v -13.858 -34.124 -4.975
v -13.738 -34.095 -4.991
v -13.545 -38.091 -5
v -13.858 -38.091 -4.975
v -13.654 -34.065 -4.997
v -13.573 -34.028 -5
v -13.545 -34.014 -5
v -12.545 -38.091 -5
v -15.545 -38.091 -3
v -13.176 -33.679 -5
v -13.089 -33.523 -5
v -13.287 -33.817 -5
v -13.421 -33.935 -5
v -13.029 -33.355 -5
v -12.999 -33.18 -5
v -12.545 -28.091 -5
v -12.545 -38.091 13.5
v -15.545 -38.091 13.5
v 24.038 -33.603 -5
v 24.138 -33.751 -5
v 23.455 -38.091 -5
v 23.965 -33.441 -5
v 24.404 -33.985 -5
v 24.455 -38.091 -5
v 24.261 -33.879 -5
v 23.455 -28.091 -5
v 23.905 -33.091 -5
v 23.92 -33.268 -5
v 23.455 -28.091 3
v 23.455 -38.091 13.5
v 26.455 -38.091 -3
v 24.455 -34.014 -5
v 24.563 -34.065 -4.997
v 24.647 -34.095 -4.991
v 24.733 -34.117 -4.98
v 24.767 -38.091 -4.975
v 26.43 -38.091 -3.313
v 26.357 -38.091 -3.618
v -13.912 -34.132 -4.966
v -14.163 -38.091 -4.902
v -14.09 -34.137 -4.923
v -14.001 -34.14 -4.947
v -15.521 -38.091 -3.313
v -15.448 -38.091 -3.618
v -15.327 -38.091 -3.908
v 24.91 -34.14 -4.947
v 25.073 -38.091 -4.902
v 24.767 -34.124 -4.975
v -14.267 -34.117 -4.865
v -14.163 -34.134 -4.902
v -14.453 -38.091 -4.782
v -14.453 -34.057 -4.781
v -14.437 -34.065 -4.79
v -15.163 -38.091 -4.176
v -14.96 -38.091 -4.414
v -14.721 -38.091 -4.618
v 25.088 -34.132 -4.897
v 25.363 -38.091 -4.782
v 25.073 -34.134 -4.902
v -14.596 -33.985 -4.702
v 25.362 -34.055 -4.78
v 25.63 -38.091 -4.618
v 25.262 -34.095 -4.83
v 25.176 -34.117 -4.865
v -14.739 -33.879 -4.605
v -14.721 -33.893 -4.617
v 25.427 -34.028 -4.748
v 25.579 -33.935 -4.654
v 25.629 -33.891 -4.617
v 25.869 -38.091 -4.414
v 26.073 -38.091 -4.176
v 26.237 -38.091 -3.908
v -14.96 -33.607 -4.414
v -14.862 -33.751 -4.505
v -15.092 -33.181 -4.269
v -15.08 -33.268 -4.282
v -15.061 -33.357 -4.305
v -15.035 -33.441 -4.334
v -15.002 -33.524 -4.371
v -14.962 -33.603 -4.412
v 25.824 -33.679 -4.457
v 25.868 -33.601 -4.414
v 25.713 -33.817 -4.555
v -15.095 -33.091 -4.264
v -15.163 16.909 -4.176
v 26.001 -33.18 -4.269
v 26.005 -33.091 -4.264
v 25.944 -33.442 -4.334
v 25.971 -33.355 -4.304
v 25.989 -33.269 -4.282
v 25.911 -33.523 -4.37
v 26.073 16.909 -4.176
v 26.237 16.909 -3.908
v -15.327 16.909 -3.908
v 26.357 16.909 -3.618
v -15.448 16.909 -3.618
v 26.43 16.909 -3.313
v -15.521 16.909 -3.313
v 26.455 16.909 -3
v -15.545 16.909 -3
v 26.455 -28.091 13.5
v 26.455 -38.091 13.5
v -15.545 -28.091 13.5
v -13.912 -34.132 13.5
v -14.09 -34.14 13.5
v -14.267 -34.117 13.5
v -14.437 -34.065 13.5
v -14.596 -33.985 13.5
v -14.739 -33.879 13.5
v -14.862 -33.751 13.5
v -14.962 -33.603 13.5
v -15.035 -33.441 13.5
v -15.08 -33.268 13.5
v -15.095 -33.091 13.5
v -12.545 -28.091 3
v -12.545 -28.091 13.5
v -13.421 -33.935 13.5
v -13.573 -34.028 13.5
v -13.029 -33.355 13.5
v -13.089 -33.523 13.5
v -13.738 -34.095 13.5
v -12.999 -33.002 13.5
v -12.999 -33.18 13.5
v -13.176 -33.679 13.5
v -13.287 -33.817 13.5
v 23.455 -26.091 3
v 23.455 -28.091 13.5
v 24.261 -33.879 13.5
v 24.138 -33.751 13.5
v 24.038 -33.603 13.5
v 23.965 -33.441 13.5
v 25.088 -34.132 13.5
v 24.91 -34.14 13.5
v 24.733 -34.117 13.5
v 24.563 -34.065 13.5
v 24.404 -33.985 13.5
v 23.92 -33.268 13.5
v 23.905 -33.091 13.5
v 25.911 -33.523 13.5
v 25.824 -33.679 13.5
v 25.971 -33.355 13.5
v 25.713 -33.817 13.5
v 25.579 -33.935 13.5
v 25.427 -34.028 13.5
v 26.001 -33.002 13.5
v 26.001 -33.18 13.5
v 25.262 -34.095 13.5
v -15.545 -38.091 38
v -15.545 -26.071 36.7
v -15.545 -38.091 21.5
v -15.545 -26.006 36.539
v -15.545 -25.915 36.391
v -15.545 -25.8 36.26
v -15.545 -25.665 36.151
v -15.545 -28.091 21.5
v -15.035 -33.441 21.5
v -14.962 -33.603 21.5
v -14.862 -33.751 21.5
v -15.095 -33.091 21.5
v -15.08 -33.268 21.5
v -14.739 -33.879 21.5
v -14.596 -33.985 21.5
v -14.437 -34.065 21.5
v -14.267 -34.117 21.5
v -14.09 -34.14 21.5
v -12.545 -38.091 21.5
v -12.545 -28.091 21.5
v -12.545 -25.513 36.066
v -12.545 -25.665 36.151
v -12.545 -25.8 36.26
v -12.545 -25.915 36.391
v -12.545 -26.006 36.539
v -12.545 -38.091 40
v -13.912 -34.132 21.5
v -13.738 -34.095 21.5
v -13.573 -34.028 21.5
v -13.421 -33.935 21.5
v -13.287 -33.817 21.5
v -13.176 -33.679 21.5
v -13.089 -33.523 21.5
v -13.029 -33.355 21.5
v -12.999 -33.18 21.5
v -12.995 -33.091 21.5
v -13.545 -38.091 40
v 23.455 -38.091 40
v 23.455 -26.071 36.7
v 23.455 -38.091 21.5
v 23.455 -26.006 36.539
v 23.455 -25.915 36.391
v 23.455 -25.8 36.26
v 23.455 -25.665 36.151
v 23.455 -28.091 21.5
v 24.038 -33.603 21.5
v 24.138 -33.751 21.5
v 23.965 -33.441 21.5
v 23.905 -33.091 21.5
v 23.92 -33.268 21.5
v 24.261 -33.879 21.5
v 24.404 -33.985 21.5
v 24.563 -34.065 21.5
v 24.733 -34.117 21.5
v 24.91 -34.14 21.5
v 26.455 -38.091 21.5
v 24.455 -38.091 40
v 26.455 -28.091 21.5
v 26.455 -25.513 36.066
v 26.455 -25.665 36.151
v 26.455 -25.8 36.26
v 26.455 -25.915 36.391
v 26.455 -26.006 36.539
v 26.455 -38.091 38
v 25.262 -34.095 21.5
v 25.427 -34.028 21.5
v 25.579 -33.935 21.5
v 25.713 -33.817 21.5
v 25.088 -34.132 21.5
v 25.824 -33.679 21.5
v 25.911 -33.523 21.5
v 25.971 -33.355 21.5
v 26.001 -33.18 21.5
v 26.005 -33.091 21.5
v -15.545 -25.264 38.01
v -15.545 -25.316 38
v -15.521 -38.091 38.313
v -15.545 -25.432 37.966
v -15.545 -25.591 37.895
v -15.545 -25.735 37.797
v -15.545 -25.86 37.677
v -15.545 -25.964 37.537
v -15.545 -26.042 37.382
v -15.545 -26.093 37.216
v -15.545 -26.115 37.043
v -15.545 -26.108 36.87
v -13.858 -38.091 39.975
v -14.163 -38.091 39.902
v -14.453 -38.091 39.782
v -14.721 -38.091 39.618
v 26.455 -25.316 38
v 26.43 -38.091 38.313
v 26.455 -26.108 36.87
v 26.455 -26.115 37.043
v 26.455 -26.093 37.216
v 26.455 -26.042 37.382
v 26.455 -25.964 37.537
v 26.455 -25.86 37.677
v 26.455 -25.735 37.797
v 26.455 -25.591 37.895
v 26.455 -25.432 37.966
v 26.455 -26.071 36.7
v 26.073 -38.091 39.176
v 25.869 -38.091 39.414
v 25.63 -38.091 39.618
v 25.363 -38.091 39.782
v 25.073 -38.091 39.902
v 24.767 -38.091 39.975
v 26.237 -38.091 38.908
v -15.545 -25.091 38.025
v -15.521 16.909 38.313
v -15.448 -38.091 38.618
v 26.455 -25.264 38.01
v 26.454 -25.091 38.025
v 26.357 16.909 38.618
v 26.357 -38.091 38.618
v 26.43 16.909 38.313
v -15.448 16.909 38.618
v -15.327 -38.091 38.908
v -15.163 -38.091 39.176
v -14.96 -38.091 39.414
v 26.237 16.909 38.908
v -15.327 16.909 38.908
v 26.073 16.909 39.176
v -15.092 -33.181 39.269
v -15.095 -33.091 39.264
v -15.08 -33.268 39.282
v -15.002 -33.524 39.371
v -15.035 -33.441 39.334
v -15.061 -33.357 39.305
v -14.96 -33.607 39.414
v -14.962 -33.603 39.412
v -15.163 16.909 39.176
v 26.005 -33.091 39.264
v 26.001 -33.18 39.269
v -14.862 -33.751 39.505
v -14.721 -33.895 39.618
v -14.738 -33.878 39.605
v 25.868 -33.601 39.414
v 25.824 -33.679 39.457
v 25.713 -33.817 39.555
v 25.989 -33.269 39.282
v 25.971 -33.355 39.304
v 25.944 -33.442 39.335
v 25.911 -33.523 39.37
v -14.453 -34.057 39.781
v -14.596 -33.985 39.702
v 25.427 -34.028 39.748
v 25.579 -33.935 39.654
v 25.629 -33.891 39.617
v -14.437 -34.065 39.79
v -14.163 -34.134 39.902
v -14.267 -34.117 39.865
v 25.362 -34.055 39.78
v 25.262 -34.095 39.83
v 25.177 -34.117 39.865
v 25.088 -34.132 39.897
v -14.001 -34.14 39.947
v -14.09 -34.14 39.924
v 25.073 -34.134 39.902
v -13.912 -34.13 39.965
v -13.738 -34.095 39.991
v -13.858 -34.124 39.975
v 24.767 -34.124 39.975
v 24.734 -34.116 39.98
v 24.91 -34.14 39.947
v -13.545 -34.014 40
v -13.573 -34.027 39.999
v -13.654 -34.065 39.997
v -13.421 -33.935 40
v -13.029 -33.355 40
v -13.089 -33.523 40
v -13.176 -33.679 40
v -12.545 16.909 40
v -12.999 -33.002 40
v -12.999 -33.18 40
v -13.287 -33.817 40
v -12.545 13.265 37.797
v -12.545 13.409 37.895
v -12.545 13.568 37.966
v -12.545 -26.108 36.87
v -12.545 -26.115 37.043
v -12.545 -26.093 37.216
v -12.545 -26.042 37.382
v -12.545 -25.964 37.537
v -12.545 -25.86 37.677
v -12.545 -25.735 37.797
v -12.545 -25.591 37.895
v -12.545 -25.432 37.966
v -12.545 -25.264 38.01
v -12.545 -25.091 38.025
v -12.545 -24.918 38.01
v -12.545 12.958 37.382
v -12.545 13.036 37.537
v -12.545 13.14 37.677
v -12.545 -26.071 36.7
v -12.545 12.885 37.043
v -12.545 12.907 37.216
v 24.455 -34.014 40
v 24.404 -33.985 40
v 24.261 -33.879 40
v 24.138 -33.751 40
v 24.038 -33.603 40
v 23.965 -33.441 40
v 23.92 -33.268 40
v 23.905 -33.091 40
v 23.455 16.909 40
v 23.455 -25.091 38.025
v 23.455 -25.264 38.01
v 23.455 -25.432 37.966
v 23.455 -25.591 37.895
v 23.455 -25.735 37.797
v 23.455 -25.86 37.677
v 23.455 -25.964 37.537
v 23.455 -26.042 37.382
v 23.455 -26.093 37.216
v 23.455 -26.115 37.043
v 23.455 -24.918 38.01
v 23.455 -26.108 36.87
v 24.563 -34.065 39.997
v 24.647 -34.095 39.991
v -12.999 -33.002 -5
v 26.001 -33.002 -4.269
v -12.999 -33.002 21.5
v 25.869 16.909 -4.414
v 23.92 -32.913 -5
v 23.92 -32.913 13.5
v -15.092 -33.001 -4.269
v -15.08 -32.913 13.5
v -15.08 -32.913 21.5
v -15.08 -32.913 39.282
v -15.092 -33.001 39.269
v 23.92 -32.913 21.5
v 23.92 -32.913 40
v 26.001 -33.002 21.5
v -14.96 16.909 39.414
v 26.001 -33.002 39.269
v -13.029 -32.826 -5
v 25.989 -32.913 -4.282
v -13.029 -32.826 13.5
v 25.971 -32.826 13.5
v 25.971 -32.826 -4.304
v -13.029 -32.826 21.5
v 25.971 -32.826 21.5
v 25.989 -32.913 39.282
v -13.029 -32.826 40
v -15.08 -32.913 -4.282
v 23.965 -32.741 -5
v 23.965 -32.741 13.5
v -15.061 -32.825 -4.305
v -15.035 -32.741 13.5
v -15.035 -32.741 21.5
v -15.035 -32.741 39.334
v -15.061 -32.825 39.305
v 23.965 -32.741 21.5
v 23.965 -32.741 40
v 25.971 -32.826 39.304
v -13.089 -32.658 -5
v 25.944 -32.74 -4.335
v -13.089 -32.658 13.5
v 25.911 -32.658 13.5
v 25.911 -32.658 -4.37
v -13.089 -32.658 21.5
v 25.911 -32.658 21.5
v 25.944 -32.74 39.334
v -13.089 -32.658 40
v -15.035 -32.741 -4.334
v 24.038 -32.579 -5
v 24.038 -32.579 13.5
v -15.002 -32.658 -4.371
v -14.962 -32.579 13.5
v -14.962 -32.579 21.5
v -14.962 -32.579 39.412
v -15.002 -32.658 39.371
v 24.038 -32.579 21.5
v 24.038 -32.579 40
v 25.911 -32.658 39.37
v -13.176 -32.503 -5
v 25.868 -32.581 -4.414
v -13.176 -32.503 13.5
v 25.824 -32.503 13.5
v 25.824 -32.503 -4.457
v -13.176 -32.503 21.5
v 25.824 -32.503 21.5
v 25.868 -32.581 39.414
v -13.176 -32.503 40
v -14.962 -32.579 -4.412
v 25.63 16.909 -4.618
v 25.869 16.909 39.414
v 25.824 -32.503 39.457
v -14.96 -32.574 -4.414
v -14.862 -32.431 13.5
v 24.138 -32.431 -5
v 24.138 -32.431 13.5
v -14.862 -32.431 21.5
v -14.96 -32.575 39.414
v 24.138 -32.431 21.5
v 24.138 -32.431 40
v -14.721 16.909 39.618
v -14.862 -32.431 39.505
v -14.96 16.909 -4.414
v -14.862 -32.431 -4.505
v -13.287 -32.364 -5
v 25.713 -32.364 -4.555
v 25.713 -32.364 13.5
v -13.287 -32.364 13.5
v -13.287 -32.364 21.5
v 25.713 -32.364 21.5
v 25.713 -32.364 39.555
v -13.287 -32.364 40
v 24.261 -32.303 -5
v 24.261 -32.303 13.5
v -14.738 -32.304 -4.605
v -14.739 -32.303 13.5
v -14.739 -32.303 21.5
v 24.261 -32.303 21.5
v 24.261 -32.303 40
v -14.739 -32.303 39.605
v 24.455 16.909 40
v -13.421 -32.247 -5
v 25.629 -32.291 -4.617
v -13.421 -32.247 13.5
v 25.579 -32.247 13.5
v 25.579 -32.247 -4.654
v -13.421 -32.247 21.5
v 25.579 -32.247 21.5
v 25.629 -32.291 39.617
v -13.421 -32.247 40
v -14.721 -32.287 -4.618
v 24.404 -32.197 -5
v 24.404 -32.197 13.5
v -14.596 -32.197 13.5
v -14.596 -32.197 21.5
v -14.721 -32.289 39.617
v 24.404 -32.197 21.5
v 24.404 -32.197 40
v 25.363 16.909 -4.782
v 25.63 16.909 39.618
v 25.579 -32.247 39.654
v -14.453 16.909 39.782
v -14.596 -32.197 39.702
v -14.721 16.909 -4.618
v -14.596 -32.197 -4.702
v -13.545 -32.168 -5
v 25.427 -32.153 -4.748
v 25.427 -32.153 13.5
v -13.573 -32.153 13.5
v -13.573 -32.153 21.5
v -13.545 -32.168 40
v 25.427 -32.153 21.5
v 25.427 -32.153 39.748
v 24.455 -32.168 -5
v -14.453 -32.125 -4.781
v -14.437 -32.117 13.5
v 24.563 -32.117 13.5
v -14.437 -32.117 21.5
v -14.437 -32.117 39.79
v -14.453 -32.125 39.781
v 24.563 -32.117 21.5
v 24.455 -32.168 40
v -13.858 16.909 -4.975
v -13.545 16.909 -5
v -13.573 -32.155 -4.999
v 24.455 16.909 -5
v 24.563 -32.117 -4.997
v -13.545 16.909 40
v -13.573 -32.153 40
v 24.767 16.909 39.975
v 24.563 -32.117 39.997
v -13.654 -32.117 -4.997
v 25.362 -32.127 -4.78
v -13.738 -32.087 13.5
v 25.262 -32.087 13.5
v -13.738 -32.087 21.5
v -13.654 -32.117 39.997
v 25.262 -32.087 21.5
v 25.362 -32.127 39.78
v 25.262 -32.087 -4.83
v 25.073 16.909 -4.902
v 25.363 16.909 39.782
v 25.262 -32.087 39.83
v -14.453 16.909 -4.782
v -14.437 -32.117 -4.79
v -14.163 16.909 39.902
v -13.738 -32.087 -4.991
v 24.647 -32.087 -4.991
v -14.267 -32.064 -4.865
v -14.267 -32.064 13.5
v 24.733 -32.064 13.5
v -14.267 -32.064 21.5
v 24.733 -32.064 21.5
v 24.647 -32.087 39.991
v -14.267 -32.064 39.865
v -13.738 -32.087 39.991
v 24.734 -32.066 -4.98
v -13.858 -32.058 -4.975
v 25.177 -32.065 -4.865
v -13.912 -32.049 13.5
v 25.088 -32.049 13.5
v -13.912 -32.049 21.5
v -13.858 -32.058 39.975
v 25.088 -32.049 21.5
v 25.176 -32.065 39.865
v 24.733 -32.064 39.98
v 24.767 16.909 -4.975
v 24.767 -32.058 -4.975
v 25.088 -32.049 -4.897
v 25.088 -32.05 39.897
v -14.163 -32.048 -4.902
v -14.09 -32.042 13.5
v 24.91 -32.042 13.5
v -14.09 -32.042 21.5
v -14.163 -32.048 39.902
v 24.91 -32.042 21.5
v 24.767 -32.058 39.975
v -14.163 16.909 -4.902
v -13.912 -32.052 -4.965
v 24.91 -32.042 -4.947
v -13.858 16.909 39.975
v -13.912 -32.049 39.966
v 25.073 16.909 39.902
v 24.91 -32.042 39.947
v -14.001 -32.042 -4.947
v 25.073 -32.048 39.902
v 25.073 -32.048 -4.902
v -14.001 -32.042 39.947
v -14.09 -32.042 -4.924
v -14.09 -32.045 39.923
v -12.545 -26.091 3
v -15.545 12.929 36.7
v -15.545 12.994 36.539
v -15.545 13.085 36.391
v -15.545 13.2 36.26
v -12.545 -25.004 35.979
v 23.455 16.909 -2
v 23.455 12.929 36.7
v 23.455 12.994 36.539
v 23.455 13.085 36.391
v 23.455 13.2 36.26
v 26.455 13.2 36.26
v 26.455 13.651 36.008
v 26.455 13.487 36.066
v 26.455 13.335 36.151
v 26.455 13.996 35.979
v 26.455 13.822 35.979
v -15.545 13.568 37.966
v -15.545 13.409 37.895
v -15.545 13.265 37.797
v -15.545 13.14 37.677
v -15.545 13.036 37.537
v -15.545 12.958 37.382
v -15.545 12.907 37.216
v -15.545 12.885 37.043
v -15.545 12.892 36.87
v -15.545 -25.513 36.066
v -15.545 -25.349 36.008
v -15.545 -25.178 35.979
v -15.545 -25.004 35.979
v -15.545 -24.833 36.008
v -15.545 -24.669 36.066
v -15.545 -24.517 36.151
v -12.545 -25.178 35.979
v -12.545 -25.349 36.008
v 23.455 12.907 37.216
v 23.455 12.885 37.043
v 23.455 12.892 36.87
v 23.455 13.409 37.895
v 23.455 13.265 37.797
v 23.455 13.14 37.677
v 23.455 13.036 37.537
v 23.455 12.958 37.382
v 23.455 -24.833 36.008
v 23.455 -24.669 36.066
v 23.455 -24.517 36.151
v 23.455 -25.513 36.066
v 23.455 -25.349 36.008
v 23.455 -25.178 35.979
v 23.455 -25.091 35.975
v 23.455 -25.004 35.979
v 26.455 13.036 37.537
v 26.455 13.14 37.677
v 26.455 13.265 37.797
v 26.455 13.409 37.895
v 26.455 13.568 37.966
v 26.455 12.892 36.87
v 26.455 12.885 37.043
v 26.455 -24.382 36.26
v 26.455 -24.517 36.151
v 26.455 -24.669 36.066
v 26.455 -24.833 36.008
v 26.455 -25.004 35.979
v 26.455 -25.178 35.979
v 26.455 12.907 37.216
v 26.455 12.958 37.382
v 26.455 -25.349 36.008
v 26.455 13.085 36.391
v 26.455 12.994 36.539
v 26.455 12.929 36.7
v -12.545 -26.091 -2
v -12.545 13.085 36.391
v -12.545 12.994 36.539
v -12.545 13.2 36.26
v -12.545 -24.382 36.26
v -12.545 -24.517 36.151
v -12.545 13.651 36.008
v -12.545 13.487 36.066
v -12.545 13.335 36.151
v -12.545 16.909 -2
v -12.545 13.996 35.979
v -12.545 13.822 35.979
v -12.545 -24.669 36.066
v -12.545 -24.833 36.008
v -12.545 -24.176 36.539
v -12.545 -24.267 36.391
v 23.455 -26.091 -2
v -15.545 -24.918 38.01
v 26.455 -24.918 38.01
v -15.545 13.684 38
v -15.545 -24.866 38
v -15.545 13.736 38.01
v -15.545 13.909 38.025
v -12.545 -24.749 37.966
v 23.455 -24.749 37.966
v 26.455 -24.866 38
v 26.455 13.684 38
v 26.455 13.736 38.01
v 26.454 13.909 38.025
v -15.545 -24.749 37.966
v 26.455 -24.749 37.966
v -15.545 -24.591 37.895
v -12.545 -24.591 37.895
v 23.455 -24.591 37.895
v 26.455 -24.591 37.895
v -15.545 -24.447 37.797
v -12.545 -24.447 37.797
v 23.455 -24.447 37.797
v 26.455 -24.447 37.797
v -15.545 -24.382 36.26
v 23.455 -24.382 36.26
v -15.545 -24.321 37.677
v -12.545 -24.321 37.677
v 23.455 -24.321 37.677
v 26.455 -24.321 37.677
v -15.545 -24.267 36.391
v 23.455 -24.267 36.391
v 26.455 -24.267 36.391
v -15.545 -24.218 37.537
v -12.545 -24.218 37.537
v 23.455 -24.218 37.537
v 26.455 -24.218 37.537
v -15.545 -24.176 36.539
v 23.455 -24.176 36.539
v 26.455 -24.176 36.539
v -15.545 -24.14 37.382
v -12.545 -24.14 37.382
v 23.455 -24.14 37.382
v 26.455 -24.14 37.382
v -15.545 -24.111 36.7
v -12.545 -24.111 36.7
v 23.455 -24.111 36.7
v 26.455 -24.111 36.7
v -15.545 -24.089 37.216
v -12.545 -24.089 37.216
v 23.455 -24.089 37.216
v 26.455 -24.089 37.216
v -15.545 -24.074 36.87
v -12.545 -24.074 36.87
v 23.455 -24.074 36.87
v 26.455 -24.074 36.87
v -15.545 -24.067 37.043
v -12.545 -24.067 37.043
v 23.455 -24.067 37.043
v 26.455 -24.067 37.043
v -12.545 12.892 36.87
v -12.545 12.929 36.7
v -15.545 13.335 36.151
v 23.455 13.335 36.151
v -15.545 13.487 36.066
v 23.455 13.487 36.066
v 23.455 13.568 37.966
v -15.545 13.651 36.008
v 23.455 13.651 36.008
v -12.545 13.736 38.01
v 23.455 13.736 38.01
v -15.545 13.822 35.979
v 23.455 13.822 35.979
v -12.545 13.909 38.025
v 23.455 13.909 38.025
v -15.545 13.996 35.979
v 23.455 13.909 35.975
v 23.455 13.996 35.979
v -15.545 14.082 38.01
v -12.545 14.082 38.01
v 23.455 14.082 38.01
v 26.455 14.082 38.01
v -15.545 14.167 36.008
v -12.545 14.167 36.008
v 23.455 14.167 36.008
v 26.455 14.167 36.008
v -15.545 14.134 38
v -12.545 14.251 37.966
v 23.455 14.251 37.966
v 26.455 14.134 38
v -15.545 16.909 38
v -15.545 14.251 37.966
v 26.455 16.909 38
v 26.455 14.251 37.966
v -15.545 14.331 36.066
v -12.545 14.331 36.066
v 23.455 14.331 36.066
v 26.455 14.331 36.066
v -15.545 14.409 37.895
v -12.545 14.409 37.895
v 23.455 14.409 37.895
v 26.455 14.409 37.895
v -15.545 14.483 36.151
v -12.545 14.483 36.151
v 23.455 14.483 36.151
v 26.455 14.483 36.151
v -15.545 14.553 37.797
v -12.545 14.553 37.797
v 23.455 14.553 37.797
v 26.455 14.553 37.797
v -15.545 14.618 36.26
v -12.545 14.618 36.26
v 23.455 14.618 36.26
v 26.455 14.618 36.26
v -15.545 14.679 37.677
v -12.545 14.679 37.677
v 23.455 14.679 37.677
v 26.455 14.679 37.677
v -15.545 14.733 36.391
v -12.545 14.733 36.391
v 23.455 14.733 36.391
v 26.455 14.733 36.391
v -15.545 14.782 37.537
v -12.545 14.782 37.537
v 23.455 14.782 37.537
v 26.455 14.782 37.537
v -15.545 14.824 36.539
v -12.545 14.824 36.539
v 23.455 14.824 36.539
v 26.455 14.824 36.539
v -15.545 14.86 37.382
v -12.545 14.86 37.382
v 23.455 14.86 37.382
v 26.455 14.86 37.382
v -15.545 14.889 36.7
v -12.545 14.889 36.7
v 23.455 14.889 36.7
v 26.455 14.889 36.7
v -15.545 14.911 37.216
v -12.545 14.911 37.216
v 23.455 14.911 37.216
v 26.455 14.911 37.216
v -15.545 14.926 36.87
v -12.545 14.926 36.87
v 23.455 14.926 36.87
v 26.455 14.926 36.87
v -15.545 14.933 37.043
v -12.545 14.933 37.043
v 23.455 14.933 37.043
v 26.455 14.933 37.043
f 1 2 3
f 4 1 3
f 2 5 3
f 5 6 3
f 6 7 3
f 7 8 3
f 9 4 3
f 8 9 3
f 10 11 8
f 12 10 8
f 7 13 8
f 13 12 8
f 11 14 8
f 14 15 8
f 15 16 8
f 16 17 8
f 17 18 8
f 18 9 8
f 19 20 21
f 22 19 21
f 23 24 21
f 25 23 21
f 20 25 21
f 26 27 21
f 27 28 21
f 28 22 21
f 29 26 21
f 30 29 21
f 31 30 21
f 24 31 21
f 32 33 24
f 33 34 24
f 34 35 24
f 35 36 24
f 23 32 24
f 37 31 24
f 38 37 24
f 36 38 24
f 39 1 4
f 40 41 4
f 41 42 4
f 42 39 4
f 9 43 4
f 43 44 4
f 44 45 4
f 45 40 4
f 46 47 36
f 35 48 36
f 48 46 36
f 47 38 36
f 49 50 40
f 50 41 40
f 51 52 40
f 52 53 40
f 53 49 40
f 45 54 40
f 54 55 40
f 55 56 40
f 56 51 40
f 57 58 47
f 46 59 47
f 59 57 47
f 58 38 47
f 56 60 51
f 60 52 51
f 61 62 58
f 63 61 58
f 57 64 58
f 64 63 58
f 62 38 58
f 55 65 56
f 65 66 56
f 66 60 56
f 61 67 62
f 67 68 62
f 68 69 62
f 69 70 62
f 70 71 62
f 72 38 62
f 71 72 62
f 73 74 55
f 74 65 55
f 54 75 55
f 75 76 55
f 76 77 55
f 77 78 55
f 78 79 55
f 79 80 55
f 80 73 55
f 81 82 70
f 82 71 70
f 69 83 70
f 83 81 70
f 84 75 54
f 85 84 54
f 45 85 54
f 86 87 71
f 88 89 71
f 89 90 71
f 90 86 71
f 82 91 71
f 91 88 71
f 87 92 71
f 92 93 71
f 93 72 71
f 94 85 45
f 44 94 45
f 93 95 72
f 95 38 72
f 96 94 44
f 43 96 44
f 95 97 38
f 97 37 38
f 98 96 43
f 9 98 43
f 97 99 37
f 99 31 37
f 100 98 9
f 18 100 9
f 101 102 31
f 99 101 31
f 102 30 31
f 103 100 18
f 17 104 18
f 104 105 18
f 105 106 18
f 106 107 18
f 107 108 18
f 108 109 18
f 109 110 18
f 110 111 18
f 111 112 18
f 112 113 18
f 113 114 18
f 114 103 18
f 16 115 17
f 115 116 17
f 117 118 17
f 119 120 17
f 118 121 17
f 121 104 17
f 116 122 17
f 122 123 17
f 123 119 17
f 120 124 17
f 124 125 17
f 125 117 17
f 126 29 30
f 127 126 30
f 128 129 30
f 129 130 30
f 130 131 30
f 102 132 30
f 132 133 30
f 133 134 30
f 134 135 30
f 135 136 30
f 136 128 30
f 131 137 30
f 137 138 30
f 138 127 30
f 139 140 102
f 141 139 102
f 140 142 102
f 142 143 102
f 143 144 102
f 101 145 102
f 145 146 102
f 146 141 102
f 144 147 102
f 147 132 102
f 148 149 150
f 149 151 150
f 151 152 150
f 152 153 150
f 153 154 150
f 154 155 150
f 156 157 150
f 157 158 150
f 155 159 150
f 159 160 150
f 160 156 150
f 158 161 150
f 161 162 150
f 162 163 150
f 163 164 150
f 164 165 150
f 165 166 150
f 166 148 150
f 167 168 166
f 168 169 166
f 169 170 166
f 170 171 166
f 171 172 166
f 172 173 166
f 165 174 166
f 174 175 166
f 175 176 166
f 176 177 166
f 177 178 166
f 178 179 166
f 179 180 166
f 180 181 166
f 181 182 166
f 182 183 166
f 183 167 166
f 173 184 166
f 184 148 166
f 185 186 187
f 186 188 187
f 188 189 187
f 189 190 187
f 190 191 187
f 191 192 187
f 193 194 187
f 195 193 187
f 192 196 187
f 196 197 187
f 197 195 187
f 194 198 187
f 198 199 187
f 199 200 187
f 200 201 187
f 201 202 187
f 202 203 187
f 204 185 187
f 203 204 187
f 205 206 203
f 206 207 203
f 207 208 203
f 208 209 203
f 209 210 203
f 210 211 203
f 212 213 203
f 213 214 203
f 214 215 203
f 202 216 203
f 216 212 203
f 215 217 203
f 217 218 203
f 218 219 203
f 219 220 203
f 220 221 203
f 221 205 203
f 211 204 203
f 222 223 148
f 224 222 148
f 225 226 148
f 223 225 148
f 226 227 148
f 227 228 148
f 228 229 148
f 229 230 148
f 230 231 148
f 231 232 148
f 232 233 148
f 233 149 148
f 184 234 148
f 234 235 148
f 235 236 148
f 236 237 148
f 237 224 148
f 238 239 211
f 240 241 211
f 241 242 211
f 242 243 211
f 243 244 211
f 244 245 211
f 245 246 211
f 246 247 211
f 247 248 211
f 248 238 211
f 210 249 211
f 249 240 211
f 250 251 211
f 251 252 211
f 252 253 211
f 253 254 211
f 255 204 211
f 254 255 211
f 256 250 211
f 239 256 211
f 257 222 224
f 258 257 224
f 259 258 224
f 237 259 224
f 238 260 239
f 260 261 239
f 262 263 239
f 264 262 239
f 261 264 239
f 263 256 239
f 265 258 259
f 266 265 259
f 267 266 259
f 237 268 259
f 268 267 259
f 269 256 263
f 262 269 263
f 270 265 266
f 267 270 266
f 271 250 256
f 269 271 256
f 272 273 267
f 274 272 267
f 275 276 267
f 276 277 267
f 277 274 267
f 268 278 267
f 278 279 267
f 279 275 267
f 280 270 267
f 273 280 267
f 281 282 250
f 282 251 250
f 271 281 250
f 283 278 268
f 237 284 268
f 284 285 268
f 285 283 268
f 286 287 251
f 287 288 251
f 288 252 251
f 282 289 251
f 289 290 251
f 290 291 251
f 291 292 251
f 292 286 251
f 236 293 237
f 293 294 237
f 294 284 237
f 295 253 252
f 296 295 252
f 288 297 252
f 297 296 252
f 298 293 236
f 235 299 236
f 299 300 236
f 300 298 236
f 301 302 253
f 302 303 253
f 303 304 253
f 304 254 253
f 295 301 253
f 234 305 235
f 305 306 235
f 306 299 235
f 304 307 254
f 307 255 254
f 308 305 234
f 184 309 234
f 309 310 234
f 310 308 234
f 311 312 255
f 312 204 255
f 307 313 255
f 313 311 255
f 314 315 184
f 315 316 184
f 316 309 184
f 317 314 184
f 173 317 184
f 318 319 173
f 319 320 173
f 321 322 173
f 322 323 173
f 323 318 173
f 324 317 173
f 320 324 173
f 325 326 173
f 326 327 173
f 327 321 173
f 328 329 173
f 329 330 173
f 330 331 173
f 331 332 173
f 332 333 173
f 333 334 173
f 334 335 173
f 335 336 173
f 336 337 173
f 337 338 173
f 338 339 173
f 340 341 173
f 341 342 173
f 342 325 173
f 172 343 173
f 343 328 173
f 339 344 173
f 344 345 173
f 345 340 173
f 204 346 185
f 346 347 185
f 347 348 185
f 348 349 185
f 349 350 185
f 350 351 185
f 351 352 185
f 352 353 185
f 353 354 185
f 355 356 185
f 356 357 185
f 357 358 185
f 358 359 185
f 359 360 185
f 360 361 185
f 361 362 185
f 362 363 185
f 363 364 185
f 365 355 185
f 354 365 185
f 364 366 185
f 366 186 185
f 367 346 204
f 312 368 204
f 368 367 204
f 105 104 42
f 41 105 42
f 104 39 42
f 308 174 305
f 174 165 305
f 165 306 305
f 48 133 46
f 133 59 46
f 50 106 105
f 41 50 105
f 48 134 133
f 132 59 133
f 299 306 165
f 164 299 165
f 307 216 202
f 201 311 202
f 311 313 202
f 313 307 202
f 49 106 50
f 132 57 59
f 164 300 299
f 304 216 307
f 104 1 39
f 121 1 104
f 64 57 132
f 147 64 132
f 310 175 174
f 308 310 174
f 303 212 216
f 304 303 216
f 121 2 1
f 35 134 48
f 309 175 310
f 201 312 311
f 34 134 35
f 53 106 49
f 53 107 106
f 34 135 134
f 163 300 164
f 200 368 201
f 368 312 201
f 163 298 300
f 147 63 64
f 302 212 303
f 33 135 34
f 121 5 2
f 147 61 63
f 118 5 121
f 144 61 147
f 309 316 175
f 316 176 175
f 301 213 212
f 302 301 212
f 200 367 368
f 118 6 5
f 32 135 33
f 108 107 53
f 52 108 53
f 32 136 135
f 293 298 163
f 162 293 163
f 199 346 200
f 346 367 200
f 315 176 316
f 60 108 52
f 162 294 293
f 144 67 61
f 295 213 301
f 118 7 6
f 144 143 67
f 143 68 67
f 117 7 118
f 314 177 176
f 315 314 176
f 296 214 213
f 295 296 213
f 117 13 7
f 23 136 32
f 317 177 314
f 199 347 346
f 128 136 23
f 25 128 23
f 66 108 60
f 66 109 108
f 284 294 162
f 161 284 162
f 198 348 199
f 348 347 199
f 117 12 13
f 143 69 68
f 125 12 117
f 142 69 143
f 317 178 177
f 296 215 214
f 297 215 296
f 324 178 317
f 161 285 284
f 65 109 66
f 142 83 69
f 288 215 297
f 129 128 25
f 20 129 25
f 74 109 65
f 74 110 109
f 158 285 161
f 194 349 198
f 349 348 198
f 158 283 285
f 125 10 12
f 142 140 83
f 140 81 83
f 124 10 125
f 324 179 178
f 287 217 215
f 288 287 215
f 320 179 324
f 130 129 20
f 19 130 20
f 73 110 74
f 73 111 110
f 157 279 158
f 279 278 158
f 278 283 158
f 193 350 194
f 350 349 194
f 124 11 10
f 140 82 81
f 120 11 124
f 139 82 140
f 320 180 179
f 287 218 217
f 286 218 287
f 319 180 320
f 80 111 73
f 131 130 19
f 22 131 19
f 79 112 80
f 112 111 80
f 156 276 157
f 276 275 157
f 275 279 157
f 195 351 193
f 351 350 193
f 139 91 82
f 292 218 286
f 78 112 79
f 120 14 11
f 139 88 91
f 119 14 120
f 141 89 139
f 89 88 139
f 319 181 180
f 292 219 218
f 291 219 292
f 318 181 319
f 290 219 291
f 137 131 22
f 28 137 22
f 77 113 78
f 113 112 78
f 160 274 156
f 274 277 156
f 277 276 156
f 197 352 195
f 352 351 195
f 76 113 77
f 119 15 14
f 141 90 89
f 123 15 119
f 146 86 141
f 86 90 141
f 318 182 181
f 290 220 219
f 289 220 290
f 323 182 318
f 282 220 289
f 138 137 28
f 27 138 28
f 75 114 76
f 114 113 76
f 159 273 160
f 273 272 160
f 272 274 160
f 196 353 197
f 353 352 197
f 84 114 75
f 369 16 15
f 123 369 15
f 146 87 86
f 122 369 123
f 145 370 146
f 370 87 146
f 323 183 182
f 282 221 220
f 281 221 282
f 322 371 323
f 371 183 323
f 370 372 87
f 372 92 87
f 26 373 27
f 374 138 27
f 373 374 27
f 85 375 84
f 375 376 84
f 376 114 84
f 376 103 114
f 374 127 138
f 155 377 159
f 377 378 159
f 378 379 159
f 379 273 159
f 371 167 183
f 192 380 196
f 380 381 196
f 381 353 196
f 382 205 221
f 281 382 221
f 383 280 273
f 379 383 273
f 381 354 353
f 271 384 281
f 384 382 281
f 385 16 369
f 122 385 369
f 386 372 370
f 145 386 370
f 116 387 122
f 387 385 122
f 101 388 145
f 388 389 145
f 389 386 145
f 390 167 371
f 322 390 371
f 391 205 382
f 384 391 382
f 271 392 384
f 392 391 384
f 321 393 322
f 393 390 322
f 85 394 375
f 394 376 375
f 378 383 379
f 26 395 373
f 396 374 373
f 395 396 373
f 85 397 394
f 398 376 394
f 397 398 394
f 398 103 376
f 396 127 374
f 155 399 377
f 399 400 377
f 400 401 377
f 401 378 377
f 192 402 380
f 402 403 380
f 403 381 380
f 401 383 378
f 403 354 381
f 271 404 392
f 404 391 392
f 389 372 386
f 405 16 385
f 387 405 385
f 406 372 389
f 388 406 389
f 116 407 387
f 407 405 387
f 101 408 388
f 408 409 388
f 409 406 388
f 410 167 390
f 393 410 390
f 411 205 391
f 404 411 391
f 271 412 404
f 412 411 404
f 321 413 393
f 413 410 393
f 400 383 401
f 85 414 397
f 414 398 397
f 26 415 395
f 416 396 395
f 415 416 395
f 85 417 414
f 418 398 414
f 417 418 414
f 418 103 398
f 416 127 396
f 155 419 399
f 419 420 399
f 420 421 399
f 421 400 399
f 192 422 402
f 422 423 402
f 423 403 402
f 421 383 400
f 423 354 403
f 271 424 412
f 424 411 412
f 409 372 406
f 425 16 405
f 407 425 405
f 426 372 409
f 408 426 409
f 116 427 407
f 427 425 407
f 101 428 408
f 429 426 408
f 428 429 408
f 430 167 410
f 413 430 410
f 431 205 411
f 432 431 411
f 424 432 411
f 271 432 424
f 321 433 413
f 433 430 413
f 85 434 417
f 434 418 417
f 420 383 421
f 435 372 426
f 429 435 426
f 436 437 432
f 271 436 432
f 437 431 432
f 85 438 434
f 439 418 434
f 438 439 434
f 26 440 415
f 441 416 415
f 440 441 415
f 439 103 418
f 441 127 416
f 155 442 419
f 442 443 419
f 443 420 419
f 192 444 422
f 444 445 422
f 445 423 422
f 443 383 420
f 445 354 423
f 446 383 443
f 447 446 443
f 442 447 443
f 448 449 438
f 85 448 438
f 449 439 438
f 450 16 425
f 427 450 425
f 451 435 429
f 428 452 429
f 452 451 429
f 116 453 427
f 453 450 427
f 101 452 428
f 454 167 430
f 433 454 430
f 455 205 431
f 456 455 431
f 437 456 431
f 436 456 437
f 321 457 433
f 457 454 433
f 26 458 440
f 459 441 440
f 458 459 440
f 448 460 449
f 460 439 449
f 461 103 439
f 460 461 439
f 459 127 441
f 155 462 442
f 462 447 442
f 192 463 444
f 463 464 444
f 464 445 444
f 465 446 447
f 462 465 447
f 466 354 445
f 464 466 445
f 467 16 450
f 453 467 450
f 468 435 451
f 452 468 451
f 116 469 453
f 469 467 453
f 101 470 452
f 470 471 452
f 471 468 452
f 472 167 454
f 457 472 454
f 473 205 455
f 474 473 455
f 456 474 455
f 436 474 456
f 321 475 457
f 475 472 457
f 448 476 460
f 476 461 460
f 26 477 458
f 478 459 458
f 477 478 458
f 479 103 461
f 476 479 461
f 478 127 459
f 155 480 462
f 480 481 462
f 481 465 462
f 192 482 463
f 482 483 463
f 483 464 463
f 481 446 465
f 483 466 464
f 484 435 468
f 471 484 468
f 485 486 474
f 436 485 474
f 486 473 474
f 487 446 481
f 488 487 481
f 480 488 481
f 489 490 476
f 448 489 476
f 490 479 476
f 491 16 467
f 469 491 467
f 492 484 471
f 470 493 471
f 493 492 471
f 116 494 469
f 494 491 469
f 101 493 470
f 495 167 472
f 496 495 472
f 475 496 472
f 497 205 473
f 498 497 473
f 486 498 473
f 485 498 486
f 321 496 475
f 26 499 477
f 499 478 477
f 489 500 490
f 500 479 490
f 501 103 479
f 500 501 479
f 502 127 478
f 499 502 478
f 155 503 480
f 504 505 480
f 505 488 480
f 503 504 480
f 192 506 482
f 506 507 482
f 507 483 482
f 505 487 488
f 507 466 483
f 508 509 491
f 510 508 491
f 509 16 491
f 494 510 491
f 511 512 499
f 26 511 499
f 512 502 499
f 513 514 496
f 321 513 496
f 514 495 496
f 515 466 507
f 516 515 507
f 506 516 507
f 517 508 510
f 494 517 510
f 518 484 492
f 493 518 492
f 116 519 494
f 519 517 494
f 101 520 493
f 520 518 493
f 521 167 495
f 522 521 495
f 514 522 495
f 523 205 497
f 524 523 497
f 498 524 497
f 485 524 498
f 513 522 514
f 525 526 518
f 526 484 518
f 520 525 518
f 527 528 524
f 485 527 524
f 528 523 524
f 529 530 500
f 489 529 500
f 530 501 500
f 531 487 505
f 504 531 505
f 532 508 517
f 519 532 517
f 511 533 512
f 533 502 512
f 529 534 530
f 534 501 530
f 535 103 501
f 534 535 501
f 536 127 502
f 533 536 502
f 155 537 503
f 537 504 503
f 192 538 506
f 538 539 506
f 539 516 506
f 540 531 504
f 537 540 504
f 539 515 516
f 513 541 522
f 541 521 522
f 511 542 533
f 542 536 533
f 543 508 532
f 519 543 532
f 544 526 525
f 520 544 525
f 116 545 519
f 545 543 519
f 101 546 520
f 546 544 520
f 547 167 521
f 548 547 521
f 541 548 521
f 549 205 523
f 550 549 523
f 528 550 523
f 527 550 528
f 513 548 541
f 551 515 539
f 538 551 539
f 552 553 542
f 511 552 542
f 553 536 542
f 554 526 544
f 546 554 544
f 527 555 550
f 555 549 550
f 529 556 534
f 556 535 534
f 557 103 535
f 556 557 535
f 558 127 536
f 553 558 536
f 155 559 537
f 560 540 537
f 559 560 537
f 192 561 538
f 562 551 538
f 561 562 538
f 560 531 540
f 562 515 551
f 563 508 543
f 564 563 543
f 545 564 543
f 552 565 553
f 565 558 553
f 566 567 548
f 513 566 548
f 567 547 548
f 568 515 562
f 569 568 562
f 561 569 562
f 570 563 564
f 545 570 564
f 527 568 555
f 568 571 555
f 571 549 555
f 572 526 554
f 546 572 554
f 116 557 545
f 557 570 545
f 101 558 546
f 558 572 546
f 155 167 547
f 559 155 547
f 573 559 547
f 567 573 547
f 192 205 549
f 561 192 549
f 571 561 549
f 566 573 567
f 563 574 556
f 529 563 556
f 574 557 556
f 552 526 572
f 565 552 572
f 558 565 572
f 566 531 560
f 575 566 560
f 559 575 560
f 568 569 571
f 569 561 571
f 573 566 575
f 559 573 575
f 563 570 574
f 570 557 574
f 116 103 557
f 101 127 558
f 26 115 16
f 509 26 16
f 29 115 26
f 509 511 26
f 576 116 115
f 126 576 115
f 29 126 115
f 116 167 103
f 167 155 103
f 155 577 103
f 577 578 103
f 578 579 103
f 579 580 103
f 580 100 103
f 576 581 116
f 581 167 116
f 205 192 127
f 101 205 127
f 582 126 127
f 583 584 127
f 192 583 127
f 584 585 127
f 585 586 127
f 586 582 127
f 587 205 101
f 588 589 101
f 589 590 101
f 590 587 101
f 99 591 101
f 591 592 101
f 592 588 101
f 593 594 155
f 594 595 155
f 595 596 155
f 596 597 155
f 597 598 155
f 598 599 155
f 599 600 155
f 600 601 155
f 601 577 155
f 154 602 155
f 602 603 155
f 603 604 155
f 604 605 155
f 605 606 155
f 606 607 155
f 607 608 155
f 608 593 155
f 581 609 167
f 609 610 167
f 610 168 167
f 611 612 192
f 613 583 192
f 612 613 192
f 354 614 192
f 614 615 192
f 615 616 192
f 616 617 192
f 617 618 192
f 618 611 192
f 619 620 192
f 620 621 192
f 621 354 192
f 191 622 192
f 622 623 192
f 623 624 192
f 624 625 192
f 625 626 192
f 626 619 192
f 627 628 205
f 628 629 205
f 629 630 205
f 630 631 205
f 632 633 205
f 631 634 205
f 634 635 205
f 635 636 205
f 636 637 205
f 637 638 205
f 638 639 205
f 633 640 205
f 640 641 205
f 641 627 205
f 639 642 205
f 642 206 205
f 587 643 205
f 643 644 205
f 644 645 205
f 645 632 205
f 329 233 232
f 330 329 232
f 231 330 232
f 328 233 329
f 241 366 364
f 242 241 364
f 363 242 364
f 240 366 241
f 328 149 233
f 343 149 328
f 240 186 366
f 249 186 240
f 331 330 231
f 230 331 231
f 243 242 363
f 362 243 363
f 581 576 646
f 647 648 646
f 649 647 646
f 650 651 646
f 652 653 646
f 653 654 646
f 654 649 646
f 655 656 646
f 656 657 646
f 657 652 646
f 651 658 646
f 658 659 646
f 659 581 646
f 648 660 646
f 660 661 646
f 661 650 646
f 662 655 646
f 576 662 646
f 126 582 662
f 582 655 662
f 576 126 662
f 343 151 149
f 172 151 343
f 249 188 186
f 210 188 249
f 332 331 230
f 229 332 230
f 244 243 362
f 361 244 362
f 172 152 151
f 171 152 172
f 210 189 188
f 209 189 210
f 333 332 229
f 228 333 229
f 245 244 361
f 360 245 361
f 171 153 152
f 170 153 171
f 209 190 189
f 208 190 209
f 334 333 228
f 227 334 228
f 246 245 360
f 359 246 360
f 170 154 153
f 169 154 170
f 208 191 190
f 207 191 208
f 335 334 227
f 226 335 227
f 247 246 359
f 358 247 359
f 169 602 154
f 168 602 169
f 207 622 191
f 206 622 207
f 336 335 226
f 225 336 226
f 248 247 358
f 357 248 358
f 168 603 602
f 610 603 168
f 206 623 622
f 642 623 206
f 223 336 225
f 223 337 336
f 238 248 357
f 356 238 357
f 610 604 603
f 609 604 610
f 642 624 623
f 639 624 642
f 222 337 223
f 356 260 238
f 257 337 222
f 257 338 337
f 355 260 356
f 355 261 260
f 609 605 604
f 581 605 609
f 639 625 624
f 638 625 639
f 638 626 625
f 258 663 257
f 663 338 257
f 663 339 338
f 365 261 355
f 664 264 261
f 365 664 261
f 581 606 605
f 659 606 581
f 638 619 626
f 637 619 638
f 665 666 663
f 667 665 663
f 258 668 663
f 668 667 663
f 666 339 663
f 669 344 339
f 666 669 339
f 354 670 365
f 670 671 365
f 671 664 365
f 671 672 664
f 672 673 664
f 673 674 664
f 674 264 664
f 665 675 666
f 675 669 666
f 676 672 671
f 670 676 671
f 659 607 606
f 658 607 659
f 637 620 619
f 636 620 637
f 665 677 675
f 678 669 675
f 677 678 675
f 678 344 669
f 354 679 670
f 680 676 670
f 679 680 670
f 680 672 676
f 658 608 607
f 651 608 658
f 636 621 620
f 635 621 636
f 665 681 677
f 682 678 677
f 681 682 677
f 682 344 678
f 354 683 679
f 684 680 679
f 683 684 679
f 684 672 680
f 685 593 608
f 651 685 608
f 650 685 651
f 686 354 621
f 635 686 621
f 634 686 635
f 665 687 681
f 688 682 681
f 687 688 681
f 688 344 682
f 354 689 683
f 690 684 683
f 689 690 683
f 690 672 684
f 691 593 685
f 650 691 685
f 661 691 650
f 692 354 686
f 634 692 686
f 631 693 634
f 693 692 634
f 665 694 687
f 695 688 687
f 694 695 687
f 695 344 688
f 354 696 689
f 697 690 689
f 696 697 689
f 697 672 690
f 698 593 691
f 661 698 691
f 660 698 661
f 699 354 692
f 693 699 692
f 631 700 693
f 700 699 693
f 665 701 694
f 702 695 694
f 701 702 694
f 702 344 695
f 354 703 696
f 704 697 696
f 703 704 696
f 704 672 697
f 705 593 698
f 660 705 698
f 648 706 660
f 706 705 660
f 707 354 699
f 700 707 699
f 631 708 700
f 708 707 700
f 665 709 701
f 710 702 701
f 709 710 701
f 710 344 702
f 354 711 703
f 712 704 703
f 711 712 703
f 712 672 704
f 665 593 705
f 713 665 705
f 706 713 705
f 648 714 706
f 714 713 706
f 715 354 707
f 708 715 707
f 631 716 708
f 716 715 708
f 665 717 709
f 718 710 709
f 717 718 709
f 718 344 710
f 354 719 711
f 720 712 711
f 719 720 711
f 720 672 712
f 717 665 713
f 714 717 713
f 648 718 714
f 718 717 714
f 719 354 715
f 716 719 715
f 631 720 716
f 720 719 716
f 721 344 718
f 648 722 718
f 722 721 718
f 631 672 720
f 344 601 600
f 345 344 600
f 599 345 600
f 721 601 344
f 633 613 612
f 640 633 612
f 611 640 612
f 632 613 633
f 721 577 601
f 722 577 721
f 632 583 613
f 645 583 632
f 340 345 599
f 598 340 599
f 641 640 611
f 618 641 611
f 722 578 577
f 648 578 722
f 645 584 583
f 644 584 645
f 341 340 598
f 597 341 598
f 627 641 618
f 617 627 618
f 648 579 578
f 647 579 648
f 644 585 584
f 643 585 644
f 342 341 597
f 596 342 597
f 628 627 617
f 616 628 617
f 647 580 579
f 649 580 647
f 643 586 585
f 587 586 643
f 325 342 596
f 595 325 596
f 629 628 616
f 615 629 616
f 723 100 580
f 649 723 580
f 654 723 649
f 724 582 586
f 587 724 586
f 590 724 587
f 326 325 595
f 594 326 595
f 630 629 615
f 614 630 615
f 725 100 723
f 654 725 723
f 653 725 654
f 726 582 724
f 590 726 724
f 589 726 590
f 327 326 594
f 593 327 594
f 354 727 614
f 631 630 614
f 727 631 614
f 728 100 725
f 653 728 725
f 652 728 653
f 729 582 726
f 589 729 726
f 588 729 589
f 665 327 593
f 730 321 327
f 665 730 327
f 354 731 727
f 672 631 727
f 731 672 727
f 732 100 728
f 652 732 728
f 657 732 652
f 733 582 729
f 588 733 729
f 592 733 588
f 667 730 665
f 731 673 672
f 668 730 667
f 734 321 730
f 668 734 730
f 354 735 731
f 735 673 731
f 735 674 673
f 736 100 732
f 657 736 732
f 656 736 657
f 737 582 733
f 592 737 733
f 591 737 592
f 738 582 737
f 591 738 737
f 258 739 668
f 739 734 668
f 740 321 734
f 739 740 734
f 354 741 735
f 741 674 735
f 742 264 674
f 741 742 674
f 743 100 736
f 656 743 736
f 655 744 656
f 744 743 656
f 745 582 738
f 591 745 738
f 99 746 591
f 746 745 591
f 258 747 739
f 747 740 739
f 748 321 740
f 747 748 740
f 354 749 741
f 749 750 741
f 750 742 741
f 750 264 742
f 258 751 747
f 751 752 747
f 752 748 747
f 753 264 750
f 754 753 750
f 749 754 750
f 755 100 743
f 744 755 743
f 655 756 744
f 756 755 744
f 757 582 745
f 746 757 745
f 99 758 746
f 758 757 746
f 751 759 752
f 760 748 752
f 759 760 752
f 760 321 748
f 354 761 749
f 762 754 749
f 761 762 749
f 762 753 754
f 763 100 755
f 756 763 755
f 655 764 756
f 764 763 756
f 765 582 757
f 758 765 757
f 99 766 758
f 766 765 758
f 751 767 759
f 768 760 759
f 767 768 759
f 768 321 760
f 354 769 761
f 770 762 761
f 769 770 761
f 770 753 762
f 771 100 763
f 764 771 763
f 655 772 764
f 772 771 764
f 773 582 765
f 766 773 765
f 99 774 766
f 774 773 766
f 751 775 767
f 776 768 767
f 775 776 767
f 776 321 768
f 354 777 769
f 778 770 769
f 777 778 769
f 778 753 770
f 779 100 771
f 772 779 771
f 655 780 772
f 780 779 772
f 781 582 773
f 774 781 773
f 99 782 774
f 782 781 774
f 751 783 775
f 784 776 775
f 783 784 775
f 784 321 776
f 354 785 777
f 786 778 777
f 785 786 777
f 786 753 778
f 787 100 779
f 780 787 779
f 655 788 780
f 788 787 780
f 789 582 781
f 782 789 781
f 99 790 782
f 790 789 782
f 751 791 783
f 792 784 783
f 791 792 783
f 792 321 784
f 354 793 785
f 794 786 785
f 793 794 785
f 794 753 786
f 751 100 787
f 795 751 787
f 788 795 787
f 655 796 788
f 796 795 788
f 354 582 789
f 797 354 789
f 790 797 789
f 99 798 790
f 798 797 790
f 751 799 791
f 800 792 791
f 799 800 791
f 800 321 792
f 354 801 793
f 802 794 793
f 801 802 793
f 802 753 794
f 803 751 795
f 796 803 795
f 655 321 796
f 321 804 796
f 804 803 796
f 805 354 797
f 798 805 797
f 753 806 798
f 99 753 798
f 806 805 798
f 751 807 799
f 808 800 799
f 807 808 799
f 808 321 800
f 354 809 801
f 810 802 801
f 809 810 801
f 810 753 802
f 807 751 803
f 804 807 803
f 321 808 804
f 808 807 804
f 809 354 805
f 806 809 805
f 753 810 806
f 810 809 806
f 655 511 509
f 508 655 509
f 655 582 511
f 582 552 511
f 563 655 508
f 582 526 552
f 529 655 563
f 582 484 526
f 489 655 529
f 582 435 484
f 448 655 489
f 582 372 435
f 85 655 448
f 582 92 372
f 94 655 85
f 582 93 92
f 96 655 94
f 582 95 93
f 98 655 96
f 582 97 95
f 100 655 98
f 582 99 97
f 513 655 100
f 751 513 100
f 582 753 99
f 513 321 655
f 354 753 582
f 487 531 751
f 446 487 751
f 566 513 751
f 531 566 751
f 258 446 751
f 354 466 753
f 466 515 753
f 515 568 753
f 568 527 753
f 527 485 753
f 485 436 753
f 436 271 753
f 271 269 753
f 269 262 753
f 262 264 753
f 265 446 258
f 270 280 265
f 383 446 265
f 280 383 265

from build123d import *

# Parameters (mm, degrees)
EXTRUDE_1_DEPTH      = 40
EXTRUDE_1_DEPTH_BACK = 5
SKETCH_2_W           = 36
SKETCH_2_H           = 37
CUT_EXTRUDE_1_DEPTH  = 50
SKETCH_5_W           = 36
SKETCH_5_H           = 5
CUT_EXTRUDE_4_DEPTH  = 43
SKETCH_9_R           = 1.025
CUT_EXTRUDE_5_DEPTH  = 45.5
SKETCH_11_W          = 3
SKETCH_11_H          = 18.5
EXTRUDE_5_DEPTH      = 10
SKETCH_13_R          = 1.05
CUT_EXTRUDE_7_DEPTH  = 63.5
FILLET_4_R           = 2
FILLET_5_R           = 2
FILLET_6_R           = 2
FILLET_7_R           = 2


with BuildPart() as part:
    # 草圖1 → 填料-伸長1 (new, two sides: drawn at the far end of the back side and taken through both)
    with BuildSketch(Plane.XY.offset(-EXTRUDE_1_DEPTH_BACK)):
        Polygon((-14.545454545, -28.090909091), (-15.545454545, -28.090909091), (-15.545454545, 16.909090909), (-14.545454545, 16.909090909), (25.454545455, 16.909090909), (26.454545455, 16.909090909), (26.454545455, -28.090909091), (25.454545455, -28.090909091), align=None)
    extrude(amount=EXTRUDE_1_DEPTH + EXTRUDE_1_DEPTH_BACK)

    # 草圖2 → 除料-伸長1 (cut)
    with BuildSketch(Plane(origin=(0, 16.909090909, 0), x_dir=(1, 0, 0), z_dir=(0, 1, 0))):
        with Locations((5.454545455, -21.5)):
            Rectangle(SKETCH_2_W, SKETCH_2_H)
    extrude(amount=-CUT_EXTRUDE_1_DEPTH, mode=Mode.SUBTRACT)

    # 草圖5 → 除料-伸長4 (cut)
    with BuildSketch(Plane(origin=(0, 16.909090909, 0), x_dir=(1, 0, 0), z_dir=(0, 1, 0))):
        with Locations((5.454545455, -0.5)):
            Rectangle(SKETCH_5_W, SKETCH_5_H)
    extrude(amount=-CUT_EXTRUDE_4_DEPTH, mode=Mode.SUBTRACT)

    # 草圖9 → 除料-伸長5 (cut)
    with BuildSketch(Plane.ZY.offset(15.545454545)):
        with Locations(Location((37, -25.090909091, 0), (0, 0, 180))):
            Circle(SKETCH_9_R)
        with Locations(Location((37, 13.909090909, 0), (0, 0, 180))):
            Circle(SKETCH_9_R)
    extrude(amount=-CUT_EXTRUDE_5_DEPTH, mode=Mode.SUBTRACT)

    # 草圖11 → 填料-伸長5 (add)
    with BuildSketch(Plane(origin=(0, -28.090909091, 0), x_dir=(-1, 0, 0), z_dir=(0, -1, 0))):
        with Locations((-24.954545455, -30.75)):
            Rectangle(SKETCH_11_W, SKETCH_11_H)
        with Locations((-24.954545455, -4.25)):
            Rectangle(SKETCH_11_W, SKETCH_11_H)
        with Locations((14.045454545, -30.75)):
            Rectangle(SKETCH_11_W, SKETCH_11_H)
        with Locations((14.045454545, -4.25)):
            Rectangle(SKETCH_11_W, SKETCH_11_H)
    extrude(amount=EXTRUDE_5_DEPTH)

    # 草圖13 → 除料-伸長7 (cut)
    with BuildSketch(Plane(origin=(0, 0, -5), x_dir=(-1, 0, 0), z_dir=(0, 0, -1))):
        with Locations((-24.954545455, -33.090909091)):
            Circle(SKETCH_13_R)
        with Locations((14.045454545, -33.090909091)):
            Circle(SKETCH_13_R)
    extrude(amount=-CUT_EXTRUDE_7_DEPTH, mode=Mode.SUBTRACT)

    # 圓角4
    # the kernel refuses this fillet: 2 mm, written as the material it takes off along each edge
    with BuildSketch(Plane(origin=(26.454545455, 21.909090909, -5), x_dir=(-1, 0, 0), z_dir=(0, -1, 0))) as fillet_4_piece_1:
        with BuildLine():
            CenterArc((FILLET_4_R, -FILLET_4_R), FILLET_4_R, 90, 90)
            Line((0, -FILLET_4_R), (0, 0))
            Line((0, 0), (FILLET_4_R, 0))
        make_face()
    extrude(amount=65, mode=Mode.SUBTRACT)

    # 圓角5
    # the kernel refuses this fillet: 2 mm, written as the material it takes off along each edge
    with BuildSketch(Plane(origin=(-15.545454545, 21.909090909, -5), x_dir=(0, 0, 1), z_dir=(0, -1, 0))) as fillet_5_piece_1:
        with BuildLine():
            CenterArc((FILLET_5_R, -FILLET_5_R), FILLET_5_R, 90, 90)
            Line((0, -FILLET_5_R), (0, 0))
            Line((0, 0), (FILLET_5_R, 0))
        make_face()
    extrude(amount=65, mode=Mode.SUBTRACT)

    # 圓角6
    # the kernel refuses this fillet: 2 mm, written as the material it takes off along each edge
    with BuildSketch(Plane(origin=(26.454545455, -43.090909091, 40), x_dir=(0, 0, -1), z_dir=(0, 1, 0))) as fillet_6_piece_1:
        with BuildLine():
            CenterArc((FILLET_6_R, FILLET_6_R), FILLET_6_R, 180, 90)
            Line((0, FILLET_6_R), (0, 0))
            Line((0, 0), (FILLET_6_R, 0))
        make_face()
    extrude(amount=65, mode=Mode.SUBTRACT)

    # 圓角7
    # the kernel refuses this fillet: 2 mm, written as the material it takes off along each edge
    with BuildSketch(Plane(origin=(-15.545454545, -43.090909091, 40), x_dir=(0, 0, -1), z_dir=(0, 1, 0))) as fillet_7_piece_1:
        with BuildLine():
            CenterArc((FILLET_7_R, -FILLET_7_R), FILLET_7_R, 90, 90)
            Line((0, -FILLET_7_R), (0, 0))
            Line((0, 0), (FILLET_7_R, 0))
        make_face()
    extrude(amount=65, mode=Mode.SUBTRACT)


solid = part.part
